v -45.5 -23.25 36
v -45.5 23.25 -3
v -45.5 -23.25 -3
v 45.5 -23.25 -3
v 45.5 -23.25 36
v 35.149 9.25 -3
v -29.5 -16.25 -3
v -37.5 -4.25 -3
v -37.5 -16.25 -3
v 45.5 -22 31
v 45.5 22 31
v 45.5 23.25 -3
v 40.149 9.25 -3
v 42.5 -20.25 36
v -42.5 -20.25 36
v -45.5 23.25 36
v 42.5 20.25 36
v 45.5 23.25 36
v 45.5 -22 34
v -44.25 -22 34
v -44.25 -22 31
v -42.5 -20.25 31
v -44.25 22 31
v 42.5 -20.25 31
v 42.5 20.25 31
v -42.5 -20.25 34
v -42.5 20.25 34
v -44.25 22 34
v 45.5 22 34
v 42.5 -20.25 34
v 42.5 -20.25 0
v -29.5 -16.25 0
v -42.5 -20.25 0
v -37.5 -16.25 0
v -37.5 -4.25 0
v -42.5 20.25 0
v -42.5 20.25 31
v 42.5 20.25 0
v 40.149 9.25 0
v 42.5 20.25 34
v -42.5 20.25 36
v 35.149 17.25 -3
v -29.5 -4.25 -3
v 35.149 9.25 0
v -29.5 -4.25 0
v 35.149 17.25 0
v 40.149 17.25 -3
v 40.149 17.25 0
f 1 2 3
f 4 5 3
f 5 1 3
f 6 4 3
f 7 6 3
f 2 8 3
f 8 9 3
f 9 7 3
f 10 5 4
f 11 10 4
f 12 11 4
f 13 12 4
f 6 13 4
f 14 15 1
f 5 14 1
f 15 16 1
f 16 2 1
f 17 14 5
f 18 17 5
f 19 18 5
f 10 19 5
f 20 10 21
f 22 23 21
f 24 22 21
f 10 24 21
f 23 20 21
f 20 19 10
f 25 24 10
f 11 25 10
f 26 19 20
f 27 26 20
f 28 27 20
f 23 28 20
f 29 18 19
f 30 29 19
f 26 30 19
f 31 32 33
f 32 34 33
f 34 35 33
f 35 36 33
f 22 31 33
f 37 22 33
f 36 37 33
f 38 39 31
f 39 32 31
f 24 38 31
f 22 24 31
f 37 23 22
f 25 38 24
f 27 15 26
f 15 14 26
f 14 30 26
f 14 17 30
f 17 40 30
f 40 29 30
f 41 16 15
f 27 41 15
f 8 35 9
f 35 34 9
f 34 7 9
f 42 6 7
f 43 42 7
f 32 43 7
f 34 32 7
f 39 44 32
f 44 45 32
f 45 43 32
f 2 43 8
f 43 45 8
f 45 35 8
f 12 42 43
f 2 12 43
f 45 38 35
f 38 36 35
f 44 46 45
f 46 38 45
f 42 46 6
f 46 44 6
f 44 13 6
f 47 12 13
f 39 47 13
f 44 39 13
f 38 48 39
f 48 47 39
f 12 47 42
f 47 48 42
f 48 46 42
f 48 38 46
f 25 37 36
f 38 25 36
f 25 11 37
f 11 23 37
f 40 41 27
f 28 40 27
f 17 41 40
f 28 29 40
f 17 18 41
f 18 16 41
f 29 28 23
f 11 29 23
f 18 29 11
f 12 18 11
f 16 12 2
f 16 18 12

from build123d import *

# Parameters (mm, degrees)
SKETCH_1_W          = 91
SKETCH_1_H          = 46.5
SKETCH_1_W_2        = 85
SKETCH_1_H_2        = 40.5
EXTRUDE_1_DEPTH     = 36
SKETCH_2_W          = 91
SKETCH_2_H          = 46.5
EXTRUDE_2_DEPTH     = 3
SKETCH_3_W          = 90
SKETCH_3_H          = 44
CUT_EXTRUDE_1_DEPTH = 3
SKETCH_4_W          = 8
SKETCH_4_H          = 12
SKETCH_4_W_2        = 5
SKETCH_4_H_2        = 8
CUT_EXTRUDE_2_DEPTH = 10


with BuildPart() as part:
    # 草圖1 → 填料-伸長1 (new body)
    with BuildSketch(Plane.XY):
        Rectangle(SKETCH_1_W, SKETCH_1_H)
        Rectangle(SKETCH_1_W_2, SKETCH_1_H_2, mode=Mode.SUBTRACT)
    extrude(amount=EXTRUDE_1_DEPTH)

    # 草圖2 → 填料-伸長2 (add)
    with BuildSketch(Plane(origin=(0, 0, 0), x_dir=(-1, 0, 0), z_dir=(0, 0, -1))):
        Rectangle(SKETCH_2_W, SKETCH_2_H)
    extrude(amount=EXTRUDE_2_DEPTH)

    # 草圖3 → 除料-伸長1 (cut)
    with BuildSketch(Plane.XY.offset(31)):
        with Locations((0.75, 0)):
            Rectangle(SKETCH_3_W, SKETCH_3_H)
    extrude(amount=CUT_EXTRUDE_1_DEPTH, mode=Mode.SUBTRACT)

    # 草圖4 → 除料-伸長2 (cut)
    with BuildSketch(Plane(origin=(0, 0, -3), x_dir=(-1, 0, 0), z_dir=(0, 0, -1))):
        with Locations((33.5, -10.25)):
            Rectangle(SKETCH_4_W, SKETCH_4_H)
        with Locations((-37.648642632, 13.25)):
            Rectangle(SKETCH_4_W_2, SKETCH_4_H_2)
    extrude(amount=-CUT_EXTRUDE_2_DEPTH, mode=Mode.SUBTRACT)


solid = part.part
